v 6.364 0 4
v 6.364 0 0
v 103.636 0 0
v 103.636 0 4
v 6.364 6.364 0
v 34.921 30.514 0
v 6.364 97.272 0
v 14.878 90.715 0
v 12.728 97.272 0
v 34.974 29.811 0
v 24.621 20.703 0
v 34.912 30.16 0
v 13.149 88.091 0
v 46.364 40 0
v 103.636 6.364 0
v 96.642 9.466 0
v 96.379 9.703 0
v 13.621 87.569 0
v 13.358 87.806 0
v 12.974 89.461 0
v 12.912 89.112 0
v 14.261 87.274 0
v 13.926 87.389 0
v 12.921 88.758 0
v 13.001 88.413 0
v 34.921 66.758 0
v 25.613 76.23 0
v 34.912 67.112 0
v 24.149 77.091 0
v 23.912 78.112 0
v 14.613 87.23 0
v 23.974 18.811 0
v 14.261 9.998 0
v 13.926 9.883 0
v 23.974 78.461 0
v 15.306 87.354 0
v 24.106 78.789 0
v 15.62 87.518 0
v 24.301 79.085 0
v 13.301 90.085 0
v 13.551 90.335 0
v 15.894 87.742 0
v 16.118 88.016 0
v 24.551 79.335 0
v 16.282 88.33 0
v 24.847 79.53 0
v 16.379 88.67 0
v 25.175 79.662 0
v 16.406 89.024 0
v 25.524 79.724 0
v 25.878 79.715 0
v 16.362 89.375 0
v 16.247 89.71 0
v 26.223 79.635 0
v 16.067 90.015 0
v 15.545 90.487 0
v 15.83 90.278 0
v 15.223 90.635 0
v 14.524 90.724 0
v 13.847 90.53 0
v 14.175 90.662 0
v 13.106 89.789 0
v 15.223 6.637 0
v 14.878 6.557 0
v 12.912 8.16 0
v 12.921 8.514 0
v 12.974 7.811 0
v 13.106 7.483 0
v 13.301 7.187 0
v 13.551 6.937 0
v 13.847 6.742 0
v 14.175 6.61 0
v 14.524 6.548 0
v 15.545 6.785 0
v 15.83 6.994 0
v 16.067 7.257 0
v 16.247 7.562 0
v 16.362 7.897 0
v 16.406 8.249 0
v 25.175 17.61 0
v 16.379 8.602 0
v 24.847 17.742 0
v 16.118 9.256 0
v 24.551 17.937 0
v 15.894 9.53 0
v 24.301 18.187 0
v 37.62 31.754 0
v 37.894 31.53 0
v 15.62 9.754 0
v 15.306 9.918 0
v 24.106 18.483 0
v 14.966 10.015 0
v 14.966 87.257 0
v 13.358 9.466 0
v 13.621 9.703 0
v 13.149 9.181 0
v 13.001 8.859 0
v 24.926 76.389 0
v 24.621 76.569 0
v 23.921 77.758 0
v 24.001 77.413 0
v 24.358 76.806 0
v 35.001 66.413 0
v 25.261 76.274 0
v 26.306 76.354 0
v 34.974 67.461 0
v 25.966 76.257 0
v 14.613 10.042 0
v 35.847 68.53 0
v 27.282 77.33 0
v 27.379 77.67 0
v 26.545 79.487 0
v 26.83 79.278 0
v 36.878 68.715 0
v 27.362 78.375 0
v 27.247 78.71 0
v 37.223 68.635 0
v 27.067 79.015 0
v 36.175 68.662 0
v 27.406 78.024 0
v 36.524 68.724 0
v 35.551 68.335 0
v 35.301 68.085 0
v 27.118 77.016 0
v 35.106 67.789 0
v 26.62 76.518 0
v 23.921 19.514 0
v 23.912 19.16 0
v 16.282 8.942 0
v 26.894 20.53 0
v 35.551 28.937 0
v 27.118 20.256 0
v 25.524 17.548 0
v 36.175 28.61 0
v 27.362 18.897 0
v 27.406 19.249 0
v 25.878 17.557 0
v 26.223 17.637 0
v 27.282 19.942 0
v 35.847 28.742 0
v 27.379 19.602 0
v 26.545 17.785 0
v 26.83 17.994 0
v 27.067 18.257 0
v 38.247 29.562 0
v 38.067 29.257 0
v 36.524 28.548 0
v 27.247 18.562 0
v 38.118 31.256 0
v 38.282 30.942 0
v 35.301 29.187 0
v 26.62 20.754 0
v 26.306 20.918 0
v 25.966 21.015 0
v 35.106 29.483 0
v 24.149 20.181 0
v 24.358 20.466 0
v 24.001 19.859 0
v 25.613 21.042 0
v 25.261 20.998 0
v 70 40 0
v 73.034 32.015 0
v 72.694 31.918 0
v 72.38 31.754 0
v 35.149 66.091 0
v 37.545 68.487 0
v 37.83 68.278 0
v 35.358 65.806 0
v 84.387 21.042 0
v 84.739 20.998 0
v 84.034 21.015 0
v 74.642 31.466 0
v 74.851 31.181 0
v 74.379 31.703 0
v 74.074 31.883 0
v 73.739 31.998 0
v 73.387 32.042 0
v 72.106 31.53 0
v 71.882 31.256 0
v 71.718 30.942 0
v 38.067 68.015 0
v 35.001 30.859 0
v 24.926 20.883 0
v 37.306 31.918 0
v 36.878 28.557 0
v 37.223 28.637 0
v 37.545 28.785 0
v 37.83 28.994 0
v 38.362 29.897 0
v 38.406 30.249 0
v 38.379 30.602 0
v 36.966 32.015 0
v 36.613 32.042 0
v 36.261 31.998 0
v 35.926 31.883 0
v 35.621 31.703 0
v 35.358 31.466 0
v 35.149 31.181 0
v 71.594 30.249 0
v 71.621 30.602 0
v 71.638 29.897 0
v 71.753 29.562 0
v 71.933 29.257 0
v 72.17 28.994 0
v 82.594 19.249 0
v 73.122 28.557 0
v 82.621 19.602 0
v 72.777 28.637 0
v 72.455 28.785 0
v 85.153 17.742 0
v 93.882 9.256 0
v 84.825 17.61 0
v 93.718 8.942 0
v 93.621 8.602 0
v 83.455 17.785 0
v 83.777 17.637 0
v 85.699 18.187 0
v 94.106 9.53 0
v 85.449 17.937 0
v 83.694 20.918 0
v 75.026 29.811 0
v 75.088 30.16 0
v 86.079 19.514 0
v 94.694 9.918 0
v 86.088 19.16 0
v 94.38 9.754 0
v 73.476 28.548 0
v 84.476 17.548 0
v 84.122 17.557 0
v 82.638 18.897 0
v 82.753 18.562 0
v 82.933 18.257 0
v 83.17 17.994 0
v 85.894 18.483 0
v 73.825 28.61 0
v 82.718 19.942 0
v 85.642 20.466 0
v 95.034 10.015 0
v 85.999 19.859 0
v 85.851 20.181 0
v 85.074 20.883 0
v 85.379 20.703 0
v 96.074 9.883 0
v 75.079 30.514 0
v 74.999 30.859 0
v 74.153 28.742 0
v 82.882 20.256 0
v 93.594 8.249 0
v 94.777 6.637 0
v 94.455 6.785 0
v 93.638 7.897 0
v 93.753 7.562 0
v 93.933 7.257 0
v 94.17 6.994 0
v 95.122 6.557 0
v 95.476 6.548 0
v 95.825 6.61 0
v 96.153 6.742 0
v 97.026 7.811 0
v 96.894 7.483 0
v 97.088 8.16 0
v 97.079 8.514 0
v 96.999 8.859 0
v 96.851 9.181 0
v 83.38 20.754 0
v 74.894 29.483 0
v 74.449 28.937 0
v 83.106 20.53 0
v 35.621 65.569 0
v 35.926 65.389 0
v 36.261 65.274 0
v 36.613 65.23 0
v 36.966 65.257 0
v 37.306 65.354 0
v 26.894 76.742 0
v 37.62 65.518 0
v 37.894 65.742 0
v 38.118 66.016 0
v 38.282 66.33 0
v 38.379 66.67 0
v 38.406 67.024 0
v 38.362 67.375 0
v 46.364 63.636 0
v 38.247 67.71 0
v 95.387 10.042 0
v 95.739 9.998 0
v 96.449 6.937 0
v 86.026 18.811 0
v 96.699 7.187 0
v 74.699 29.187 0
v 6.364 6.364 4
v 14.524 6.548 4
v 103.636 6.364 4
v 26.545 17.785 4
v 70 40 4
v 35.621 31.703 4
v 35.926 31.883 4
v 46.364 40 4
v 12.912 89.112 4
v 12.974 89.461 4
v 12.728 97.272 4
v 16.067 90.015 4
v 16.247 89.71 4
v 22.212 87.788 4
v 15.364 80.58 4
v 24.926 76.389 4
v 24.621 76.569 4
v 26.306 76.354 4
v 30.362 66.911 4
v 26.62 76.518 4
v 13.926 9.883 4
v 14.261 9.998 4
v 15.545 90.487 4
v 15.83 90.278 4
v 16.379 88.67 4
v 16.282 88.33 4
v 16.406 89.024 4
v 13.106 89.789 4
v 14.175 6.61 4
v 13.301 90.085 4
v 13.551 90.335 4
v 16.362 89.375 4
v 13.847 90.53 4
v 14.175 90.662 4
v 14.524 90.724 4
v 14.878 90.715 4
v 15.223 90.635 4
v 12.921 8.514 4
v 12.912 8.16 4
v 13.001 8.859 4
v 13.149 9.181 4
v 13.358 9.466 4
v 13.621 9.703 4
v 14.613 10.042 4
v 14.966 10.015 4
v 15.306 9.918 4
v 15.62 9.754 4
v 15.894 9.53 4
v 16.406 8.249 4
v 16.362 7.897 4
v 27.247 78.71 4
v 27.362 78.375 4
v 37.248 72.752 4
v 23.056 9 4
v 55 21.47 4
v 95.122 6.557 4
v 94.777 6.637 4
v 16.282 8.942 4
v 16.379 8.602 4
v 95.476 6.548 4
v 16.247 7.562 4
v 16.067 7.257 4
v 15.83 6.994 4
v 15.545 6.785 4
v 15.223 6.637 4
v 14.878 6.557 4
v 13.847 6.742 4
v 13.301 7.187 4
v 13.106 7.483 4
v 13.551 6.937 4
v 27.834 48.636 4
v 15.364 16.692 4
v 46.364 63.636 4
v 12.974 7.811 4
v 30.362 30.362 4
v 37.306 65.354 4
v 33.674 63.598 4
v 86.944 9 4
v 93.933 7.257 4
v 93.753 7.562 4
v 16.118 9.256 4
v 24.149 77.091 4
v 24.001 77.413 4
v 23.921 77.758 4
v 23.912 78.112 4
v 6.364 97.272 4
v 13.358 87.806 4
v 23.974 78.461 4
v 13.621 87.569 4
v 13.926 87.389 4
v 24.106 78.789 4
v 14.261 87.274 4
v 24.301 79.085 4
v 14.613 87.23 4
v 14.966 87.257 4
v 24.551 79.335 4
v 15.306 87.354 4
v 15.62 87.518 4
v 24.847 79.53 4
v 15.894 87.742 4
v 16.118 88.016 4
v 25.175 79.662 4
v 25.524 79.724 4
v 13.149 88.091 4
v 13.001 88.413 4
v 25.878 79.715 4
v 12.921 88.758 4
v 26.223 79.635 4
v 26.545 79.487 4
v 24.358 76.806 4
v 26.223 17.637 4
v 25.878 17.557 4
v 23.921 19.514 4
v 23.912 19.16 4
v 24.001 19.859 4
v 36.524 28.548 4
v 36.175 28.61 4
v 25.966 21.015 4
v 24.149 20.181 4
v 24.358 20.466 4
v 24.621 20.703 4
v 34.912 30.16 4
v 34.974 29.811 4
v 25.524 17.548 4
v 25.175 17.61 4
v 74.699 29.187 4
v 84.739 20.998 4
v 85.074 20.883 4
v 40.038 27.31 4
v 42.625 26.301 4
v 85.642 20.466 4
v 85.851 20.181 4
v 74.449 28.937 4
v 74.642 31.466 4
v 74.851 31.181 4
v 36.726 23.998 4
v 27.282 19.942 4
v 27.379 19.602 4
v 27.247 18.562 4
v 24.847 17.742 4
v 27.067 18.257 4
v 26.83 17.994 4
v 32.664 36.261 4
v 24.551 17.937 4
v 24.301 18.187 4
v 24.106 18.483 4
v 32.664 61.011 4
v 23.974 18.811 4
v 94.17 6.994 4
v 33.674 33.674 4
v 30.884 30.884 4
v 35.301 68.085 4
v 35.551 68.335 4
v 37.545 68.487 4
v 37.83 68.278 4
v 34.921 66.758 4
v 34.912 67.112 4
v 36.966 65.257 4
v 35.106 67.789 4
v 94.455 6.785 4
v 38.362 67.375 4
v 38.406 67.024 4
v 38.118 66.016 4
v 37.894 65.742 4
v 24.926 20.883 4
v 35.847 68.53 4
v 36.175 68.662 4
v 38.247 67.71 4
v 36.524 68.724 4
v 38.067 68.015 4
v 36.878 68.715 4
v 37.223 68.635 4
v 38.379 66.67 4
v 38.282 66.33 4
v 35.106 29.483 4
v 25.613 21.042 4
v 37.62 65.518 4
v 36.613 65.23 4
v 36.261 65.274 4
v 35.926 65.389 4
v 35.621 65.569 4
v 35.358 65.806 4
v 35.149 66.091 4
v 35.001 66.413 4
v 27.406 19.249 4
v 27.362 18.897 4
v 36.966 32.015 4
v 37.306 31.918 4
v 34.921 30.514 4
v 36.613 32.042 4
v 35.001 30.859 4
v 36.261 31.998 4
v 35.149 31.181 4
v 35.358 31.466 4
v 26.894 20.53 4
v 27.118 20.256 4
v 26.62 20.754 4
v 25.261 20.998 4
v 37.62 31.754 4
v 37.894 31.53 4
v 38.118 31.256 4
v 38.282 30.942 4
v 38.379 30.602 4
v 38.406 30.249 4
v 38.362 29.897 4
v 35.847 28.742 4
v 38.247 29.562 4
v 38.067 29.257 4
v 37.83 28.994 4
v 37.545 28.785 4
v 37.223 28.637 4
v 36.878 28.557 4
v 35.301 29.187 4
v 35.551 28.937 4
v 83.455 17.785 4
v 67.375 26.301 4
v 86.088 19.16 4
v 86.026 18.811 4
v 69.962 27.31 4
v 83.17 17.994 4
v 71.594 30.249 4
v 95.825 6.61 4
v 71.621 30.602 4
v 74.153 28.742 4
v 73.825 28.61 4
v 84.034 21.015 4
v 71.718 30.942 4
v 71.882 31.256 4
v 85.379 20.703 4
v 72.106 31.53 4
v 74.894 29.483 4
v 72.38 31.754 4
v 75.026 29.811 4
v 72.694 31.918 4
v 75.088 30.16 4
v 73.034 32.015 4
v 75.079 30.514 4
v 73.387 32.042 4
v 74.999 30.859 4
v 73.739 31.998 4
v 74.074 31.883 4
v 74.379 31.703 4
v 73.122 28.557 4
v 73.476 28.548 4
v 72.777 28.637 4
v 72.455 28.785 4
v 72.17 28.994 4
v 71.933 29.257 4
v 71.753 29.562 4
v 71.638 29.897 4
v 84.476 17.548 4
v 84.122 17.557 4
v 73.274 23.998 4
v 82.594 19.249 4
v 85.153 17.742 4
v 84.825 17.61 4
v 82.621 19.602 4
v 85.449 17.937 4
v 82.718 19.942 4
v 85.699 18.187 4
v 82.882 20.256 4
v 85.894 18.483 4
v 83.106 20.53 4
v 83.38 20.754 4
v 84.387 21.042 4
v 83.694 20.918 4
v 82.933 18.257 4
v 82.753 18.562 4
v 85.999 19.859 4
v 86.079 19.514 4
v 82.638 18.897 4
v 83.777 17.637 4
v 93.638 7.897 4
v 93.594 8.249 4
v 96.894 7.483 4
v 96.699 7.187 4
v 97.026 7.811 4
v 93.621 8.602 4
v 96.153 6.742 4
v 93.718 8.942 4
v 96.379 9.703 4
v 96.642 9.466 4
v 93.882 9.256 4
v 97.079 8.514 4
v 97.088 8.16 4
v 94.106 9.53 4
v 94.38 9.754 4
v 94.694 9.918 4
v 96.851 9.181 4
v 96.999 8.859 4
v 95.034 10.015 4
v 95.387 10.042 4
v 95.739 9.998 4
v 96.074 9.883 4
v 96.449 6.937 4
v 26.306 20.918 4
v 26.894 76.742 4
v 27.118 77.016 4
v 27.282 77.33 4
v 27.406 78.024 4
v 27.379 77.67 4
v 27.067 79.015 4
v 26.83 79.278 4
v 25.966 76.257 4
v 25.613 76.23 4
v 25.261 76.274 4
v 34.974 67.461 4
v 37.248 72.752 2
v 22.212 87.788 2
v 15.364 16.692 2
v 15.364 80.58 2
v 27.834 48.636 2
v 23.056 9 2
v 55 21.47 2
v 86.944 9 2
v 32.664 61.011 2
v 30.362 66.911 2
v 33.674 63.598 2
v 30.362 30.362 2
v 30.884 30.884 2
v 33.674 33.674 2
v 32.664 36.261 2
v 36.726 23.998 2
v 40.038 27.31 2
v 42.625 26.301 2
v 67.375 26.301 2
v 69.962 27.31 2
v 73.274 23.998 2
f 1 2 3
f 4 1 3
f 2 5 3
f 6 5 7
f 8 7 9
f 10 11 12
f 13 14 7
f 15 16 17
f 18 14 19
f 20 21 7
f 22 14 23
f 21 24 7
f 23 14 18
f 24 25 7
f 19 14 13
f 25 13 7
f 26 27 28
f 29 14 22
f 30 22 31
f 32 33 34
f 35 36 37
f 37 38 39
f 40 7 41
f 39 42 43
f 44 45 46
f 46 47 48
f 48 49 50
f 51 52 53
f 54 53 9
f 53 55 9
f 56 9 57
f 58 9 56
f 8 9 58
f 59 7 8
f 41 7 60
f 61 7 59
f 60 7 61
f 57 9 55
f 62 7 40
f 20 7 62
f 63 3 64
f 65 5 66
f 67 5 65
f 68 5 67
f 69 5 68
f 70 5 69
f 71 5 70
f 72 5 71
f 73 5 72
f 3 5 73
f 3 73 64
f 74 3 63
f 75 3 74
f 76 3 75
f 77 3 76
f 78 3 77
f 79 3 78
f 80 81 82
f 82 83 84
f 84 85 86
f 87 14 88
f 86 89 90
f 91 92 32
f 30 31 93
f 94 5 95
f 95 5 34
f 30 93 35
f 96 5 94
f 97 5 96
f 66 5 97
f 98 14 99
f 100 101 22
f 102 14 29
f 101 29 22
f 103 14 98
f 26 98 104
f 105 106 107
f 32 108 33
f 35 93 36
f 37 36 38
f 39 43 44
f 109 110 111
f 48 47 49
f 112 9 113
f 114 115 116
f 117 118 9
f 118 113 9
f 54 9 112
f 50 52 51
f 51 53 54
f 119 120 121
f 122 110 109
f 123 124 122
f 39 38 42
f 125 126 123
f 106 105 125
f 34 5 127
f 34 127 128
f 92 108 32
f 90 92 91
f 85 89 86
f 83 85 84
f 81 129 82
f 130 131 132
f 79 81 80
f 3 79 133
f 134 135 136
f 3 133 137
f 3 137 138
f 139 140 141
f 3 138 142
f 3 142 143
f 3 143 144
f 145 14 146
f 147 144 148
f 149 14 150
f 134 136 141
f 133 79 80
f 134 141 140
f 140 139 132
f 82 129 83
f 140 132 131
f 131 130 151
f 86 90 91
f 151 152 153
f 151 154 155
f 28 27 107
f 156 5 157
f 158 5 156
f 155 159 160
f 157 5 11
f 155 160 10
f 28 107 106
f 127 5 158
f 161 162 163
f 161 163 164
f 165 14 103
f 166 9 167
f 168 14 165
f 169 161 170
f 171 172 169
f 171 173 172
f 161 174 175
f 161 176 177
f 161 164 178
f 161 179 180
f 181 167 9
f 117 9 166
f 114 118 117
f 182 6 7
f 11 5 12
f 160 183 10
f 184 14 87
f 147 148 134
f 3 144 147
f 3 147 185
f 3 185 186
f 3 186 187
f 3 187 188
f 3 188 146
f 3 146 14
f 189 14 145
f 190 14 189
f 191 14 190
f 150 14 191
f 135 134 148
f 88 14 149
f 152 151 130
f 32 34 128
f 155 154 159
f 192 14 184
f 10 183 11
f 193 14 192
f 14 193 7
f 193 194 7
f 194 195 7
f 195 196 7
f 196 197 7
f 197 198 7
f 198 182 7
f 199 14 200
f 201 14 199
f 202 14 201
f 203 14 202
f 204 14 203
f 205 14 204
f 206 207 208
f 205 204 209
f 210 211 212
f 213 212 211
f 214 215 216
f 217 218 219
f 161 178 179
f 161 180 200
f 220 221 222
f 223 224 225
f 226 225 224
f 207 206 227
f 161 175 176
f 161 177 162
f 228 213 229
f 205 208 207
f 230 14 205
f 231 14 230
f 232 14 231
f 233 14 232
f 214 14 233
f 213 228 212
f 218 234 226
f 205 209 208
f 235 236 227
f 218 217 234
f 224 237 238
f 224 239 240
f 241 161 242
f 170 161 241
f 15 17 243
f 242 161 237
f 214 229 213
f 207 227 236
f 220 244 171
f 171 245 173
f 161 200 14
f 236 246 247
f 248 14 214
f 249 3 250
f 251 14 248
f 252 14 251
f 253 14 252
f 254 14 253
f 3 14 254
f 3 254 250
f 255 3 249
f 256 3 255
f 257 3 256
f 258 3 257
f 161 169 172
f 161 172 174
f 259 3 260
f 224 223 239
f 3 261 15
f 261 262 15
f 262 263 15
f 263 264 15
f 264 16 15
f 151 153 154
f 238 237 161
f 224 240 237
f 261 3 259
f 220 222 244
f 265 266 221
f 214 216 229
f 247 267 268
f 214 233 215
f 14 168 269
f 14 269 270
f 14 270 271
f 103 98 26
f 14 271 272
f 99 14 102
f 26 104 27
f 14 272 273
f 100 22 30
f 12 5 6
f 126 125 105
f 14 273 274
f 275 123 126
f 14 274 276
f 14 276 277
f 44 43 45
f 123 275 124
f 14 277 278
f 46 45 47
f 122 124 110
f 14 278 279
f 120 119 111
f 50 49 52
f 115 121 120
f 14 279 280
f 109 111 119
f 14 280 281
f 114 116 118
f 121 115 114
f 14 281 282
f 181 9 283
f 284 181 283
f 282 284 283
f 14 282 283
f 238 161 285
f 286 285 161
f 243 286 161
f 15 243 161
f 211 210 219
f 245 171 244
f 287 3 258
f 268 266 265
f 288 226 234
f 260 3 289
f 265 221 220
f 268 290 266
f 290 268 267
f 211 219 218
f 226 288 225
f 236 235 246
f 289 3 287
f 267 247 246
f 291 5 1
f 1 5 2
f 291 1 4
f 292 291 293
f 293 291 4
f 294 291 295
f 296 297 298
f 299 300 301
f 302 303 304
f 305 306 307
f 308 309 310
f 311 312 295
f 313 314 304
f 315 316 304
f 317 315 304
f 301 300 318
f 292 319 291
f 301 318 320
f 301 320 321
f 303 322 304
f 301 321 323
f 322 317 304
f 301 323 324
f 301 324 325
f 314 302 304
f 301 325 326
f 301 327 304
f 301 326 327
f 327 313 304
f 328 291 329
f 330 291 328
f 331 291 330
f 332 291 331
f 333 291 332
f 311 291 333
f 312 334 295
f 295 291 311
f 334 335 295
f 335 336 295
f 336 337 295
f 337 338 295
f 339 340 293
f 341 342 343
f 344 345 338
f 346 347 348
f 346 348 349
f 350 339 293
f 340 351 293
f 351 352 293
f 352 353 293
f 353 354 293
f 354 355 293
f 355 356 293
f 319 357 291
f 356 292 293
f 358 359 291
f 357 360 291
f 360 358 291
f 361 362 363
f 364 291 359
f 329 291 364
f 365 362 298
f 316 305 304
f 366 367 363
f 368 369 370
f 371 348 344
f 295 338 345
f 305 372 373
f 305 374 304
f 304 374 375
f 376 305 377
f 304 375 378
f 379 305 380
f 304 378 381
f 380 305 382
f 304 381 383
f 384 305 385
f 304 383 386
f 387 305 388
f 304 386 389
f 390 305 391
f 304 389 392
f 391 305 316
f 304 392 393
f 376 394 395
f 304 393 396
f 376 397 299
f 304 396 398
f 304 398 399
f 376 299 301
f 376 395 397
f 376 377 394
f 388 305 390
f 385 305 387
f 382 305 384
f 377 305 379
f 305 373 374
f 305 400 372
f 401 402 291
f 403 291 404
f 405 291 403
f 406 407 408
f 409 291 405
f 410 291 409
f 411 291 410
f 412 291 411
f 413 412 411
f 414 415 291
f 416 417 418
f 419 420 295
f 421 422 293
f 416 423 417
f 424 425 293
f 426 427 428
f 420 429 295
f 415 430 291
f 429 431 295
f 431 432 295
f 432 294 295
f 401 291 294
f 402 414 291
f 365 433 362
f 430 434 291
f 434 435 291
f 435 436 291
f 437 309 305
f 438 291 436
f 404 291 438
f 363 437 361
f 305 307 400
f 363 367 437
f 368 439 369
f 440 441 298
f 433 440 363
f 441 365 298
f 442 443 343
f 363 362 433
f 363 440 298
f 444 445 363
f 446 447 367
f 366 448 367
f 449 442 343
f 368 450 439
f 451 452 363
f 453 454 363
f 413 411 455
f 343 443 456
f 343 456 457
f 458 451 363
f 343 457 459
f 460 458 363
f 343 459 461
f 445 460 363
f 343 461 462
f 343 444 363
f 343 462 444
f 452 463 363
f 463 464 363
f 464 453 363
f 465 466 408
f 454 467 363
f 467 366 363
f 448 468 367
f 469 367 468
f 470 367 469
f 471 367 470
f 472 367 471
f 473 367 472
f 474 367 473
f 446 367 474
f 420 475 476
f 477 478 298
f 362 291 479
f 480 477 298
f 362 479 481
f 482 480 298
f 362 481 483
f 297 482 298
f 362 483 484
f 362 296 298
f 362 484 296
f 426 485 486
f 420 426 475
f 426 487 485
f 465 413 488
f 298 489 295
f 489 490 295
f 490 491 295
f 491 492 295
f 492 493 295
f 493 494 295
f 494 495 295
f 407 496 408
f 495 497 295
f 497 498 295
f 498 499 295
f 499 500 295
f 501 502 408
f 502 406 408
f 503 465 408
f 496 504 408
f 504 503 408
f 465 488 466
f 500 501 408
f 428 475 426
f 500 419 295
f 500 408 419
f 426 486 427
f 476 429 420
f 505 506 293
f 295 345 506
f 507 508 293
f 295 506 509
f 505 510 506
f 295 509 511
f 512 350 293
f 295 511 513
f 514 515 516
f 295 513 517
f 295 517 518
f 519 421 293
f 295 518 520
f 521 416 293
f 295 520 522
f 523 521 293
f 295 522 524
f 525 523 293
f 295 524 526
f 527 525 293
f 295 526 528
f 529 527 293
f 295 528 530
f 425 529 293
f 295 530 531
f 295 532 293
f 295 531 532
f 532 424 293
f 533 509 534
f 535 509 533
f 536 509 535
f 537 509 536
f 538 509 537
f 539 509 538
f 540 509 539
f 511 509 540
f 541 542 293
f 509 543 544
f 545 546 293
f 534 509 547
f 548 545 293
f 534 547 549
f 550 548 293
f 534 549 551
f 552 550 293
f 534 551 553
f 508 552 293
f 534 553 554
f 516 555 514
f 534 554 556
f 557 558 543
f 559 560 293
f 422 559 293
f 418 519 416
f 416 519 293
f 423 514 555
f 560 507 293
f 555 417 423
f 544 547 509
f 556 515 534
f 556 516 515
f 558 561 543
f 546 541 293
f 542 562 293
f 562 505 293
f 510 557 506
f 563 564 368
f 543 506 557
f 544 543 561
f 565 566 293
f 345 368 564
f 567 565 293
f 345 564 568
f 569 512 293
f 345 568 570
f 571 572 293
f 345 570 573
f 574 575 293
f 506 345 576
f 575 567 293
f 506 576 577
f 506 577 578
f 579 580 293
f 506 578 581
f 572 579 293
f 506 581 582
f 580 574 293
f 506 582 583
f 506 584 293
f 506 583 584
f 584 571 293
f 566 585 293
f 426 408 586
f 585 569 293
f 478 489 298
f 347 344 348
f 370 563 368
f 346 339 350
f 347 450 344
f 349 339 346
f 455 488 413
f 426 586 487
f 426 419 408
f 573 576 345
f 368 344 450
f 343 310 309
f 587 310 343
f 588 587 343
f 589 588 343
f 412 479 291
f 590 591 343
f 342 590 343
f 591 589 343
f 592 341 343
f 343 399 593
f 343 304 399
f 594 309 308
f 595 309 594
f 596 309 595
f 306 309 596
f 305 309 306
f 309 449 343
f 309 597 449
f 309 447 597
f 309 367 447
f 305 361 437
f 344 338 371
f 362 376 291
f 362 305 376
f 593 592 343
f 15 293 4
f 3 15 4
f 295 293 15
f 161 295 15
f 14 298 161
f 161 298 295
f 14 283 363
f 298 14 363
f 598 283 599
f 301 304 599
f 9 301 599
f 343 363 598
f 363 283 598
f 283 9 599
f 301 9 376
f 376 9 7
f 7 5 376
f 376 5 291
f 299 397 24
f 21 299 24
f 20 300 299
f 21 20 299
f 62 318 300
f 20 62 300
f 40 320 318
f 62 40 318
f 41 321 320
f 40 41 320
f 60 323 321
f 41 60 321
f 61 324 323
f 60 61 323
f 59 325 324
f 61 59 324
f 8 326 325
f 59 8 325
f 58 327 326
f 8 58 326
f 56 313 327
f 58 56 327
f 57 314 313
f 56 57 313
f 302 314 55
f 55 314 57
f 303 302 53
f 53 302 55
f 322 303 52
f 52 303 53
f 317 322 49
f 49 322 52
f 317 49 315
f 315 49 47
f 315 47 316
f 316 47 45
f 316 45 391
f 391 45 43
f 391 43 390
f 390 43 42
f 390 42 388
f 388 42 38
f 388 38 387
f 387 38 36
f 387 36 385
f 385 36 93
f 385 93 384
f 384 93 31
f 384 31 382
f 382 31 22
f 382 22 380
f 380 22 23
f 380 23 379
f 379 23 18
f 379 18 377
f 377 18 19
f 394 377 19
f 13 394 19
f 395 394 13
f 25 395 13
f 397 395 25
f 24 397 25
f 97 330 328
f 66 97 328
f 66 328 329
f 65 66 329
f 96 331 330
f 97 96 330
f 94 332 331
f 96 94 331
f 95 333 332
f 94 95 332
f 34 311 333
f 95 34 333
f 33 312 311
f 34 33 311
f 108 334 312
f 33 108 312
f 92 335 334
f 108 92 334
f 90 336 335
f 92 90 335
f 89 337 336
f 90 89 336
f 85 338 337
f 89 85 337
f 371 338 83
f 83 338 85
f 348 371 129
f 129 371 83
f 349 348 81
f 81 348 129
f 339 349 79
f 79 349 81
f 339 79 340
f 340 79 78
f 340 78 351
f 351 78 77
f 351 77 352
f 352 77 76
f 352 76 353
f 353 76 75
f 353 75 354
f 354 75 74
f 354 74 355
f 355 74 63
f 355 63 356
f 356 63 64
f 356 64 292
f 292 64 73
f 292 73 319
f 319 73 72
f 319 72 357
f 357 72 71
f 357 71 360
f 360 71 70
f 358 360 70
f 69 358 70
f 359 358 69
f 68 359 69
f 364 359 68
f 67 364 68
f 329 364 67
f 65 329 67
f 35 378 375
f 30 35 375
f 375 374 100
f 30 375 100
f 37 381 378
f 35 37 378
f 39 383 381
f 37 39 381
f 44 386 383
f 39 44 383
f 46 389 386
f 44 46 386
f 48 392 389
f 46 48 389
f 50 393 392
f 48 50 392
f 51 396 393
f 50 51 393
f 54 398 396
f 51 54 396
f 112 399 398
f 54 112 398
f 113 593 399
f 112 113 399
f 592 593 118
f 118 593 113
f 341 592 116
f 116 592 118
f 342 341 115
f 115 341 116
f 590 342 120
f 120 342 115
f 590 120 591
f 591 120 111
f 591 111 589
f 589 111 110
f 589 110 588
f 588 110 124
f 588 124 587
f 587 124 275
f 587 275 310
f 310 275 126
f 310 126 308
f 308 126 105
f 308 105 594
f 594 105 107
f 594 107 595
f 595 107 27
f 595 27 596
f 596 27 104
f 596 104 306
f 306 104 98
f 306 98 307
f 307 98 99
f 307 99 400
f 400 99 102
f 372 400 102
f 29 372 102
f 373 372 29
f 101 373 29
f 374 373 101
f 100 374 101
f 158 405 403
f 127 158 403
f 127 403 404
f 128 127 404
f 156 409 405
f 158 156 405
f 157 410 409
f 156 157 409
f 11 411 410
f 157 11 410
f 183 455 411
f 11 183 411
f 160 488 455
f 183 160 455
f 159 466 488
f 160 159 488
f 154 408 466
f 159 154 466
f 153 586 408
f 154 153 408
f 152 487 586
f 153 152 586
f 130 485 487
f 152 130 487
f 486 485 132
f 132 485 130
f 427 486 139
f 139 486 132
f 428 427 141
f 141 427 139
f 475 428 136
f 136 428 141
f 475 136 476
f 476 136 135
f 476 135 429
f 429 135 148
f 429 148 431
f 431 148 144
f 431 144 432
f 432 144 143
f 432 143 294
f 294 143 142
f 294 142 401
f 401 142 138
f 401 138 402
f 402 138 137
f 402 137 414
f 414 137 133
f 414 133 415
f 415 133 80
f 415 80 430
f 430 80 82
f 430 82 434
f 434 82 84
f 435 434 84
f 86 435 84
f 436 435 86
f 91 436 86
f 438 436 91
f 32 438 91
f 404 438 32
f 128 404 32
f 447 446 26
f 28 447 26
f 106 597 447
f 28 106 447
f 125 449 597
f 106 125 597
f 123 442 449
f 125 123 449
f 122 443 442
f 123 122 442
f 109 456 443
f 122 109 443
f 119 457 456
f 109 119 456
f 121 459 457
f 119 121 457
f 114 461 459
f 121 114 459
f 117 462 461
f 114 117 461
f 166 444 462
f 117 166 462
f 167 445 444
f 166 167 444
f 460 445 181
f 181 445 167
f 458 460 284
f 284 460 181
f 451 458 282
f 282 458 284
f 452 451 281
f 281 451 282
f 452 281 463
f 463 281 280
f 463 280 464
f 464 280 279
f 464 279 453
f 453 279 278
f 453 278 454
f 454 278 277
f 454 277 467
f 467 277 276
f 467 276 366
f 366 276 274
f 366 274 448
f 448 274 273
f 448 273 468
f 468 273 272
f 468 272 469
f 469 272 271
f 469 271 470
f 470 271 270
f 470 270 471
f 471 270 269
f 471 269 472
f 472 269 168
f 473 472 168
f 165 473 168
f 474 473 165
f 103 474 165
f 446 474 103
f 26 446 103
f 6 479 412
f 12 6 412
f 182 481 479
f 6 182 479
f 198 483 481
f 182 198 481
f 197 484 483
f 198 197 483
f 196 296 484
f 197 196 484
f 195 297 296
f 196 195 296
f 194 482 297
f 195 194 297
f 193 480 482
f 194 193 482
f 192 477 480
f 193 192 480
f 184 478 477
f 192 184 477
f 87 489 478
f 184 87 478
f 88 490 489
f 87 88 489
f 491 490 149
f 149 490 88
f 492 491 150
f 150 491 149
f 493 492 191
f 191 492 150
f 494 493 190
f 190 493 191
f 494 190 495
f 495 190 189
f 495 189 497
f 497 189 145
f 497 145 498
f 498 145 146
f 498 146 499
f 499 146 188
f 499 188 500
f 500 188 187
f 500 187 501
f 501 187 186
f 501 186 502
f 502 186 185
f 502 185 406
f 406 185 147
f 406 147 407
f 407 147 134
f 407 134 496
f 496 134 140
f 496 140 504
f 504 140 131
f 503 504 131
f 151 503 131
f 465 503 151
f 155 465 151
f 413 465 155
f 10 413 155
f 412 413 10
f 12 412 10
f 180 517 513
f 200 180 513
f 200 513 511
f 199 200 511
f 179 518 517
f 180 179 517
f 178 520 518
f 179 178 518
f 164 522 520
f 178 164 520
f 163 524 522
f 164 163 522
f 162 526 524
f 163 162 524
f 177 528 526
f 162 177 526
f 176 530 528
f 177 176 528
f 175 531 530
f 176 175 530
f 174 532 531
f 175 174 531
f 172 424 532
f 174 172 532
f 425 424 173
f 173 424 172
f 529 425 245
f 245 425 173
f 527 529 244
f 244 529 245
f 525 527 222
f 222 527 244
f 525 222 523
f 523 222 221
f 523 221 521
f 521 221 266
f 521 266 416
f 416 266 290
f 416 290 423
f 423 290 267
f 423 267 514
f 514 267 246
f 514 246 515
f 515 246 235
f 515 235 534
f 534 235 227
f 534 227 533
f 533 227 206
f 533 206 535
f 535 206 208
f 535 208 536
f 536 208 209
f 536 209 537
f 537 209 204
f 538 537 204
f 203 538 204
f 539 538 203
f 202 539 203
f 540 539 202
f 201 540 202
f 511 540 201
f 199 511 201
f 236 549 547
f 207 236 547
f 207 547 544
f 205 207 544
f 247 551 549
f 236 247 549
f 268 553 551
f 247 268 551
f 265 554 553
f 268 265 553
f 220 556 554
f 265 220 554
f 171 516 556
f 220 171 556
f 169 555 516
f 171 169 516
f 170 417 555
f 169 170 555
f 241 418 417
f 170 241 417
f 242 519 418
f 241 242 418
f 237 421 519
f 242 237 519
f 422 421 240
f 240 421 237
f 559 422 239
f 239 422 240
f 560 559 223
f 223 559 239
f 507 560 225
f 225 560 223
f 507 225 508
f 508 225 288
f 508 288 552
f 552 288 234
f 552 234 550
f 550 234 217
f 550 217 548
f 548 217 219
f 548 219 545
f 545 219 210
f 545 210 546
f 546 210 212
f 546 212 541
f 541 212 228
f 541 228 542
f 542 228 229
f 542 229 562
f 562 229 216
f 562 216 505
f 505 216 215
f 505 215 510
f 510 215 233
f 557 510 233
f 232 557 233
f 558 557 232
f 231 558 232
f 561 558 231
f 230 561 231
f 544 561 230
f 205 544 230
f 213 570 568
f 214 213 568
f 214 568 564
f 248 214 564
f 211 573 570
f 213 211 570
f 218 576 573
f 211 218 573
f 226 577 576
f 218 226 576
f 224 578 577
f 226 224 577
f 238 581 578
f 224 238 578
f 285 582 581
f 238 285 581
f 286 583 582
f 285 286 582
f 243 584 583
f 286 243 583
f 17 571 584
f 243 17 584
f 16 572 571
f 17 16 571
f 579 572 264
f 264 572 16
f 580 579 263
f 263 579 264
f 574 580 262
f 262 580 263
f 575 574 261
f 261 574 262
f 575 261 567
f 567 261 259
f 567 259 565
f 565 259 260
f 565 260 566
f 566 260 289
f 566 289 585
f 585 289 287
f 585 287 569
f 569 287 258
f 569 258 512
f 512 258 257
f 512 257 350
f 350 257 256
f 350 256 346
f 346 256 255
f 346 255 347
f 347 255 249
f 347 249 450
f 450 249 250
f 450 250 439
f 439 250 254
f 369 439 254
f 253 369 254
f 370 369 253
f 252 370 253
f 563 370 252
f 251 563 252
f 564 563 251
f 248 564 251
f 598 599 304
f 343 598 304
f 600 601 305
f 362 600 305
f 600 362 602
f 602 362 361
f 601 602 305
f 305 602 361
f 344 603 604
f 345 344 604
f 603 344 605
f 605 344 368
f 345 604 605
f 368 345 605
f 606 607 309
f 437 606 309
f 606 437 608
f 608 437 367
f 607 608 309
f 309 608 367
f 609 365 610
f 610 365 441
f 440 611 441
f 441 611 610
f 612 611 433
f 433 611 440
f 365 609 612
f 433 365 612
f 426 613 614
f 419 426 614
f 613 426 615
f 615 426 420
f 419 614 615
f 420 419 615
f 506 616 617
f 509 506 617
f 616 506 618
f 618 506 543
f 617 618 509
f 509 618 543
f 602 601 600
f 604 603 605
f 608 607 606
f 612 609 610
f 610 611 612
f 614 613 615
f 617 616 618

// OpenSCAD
// file: structure.scad
/*
  Deltafab - A Fully Parametric and Printable RepRap
    Copyright (C) 2011  Steve Kelly

    This program is free software: you can redistribute it and/or modify
    it under the terms of the GNU General Public License as published by
    the Free Software Foundation, either version 3 of the License, or
    (at your option) any later version.

    This program is distributed in the hope that it will be useful,
    but WITHOUT ANY WARRANTY; without even the implied warranty of
    MERCHANTABILITY or FITNESS FOR A PARTICULAR PURPOSE.  See the
    GNU General Public License for more details.

    You should have received a copy of the GNU General Public License
    along with this program.  If not, see <http://www.gnu.org/licenses/>.
*/

include <config.scad>;

module structure(){


	//Breakout and distributed vars
	
difference(){

	union(){
		cube([structbase,structheight,structthickness]);
		cube([structbase,structbracewidth,structthickness*2]);
		translate([0,structheight-structbracewidth,0])cube([structbase,structbracewidth,structthickness*2]);
		translate([structbracewidth/sin(45),0,0])rotate([0,0,45])cube([structheight/sin(45)-structbracewidth/sin(45),structbracewidth,structthickness*2]);
		translate([structbase-structbracewidth/sin(45)/2,structbracewidth/sin(45)/2,0])rotate([0,0,135])cube([structheight/sin(45)-structbracewidth/sin(45),structbracewidth,structthickness*2]);
		translate([0,0,0])rotate([0,0,asin(structheight/structbase)])cube([sqrt(pow(structbase-structheight/sin(45)/2,2)+pow(structheight,2)),structbracewidth,structthickness*2]);
		translate([structbase,0,0])rotate([0,0,180-asin(structheight/structbase)])translate([0,-structbracewidth])cube([sqrt(pow(structbase-structheight/sin(45)/2,2)+pow(structheight,2)),structbracewidth,structthickness*2]);
	}

	translate([0,-1,-1])cube([structbracewidth/2/sin(45),structbracewidth/2/sin(45)+2,structthickness*2+2]);
	translate([structbase-(structbracewidth/2/sin(45)),-1,-1])cube([structbracewidth/2/sin(45),structbracewidth/2/sin(45)+2,structthickness*2+2]);

	translate([0,0,-1])rotate([0,0,45])cube([structheight/sin(45),structheight/sin(45)/2,structthickness*2+2]);
	translate([structbase,0,-1])rotate([0,0,45])cube([structheight/sin(45)/2,structheight/sin(45),structthickness*2+2]);

	for(i=[0 : ((structheight-structbracewidth*2)/sin(45))/(structholes-1) : ((structheight-structbracewidth*2)/sin(45))]){
		rotate([0,0,45])translate([structbracewidth/sin(45)+screwdia+i,-structbracewidth/2,-1])cylinder(r=screwdia/2,h=structthickness*2+2);
	}

	for(i=[0 : ((structheight-structbracewidth*2)/sin(45))/(structholes-1) : ((structheight-structbracewidth*2)/sin(45))]){
		translate([structbase,0,0])rotate([0,0,135])translate([structbracewidth/sin(45)+screwdia+i,structbracewidth/2,-1])cylinder(r=screwdia/2,h=structthickness*2+2);
	}

}

}
structure();
// file: config.scad
// https://docs.google.com/viewer?a=v&pid=explorer&chrome=true&srcid=0B8AGtzEPL1XpNGIwMjM0NzQtZmMyMS00YmU2LTkwMjItNTkzNzA0MDJkZTAx&hl=en_US&authkey=CMjZjW0

$fn = 31;

//Delta config constants
upperlinkage = 63; 
lowerlinkage = 126;
baseradius = 35;
endeffector = 50; //radius of the end effector
fourbarspacing = 70;

//hardware
screwdia = 3.5; //m3
screwheaddia = 5.6; //m3
screwheadheight = 3.2; //m3
nutapothem = 5.7; //m3
nutheight = 2.5; //m3 lock nut

//motors 
holespacing = 17*2.54*sin(45); //nema 17
shaftlength = 22;
shaftdia = 5;
bodylength = 48;
bodywidth = 42; //could also be diameter of a round servo
motorwall = 2.75;
motorcenterdia = 25;

//Structure pieces
structbase = 110;  //180
structheight = 40;  //70
structholes = 3; //how many holes are on each side. 
structthickness = 2;
structbracewidth = 9;

//z axis plates
smoothroddia = 8;
platelength = 110;
platethickness = 3;

//cups
cupwall = 2.7;

//end effector
extruderspacing = 40;
extrudermountholes = 10;

//base
basemotorwall = 2.7;

//upper linkage
upperlinkthick = nutapothem/cos(30);
upperlinkwidth = 20;

//coupling
leadscrewdia = 8;
couplingwall = 5;
couplingheight = 30;

//general shit
nutwall = nutapothem/4;
// main file
/*
  Deltafab - A Fully Parametric and Printable RepRap
    Copyright (C) 2011  Steve Kelly

    This program is free software: you can redistribute it and/or modify
    it under the terms of the GNU General Public License as published by
    the Free Software Foundation, either version 3 of the License, or
    (at your option) any later version.

    This program is distributed in the hope that it will be useful,
    but WITHOUT ANY WARRANTY; without even the implied warranty of
    MERCHANTABILITY or FITNESS FOR A PARTICULAR PURPOSE.  See the
    GNU General Public License for more details.

    You should have received a copy of the GNU General Public License
    along with this program.  If not, see <http://www.gnu.org/licenses/>.
*/

include <config.scad>;
use<structure.scad>

module 90structure(){
	union(){
		structure();
		translate([structbracewidth/2/sin(45),structbase-structbracewidth/2/sin(45),0])rotate([0,0,-90])structure();
	}
}
90structure();
